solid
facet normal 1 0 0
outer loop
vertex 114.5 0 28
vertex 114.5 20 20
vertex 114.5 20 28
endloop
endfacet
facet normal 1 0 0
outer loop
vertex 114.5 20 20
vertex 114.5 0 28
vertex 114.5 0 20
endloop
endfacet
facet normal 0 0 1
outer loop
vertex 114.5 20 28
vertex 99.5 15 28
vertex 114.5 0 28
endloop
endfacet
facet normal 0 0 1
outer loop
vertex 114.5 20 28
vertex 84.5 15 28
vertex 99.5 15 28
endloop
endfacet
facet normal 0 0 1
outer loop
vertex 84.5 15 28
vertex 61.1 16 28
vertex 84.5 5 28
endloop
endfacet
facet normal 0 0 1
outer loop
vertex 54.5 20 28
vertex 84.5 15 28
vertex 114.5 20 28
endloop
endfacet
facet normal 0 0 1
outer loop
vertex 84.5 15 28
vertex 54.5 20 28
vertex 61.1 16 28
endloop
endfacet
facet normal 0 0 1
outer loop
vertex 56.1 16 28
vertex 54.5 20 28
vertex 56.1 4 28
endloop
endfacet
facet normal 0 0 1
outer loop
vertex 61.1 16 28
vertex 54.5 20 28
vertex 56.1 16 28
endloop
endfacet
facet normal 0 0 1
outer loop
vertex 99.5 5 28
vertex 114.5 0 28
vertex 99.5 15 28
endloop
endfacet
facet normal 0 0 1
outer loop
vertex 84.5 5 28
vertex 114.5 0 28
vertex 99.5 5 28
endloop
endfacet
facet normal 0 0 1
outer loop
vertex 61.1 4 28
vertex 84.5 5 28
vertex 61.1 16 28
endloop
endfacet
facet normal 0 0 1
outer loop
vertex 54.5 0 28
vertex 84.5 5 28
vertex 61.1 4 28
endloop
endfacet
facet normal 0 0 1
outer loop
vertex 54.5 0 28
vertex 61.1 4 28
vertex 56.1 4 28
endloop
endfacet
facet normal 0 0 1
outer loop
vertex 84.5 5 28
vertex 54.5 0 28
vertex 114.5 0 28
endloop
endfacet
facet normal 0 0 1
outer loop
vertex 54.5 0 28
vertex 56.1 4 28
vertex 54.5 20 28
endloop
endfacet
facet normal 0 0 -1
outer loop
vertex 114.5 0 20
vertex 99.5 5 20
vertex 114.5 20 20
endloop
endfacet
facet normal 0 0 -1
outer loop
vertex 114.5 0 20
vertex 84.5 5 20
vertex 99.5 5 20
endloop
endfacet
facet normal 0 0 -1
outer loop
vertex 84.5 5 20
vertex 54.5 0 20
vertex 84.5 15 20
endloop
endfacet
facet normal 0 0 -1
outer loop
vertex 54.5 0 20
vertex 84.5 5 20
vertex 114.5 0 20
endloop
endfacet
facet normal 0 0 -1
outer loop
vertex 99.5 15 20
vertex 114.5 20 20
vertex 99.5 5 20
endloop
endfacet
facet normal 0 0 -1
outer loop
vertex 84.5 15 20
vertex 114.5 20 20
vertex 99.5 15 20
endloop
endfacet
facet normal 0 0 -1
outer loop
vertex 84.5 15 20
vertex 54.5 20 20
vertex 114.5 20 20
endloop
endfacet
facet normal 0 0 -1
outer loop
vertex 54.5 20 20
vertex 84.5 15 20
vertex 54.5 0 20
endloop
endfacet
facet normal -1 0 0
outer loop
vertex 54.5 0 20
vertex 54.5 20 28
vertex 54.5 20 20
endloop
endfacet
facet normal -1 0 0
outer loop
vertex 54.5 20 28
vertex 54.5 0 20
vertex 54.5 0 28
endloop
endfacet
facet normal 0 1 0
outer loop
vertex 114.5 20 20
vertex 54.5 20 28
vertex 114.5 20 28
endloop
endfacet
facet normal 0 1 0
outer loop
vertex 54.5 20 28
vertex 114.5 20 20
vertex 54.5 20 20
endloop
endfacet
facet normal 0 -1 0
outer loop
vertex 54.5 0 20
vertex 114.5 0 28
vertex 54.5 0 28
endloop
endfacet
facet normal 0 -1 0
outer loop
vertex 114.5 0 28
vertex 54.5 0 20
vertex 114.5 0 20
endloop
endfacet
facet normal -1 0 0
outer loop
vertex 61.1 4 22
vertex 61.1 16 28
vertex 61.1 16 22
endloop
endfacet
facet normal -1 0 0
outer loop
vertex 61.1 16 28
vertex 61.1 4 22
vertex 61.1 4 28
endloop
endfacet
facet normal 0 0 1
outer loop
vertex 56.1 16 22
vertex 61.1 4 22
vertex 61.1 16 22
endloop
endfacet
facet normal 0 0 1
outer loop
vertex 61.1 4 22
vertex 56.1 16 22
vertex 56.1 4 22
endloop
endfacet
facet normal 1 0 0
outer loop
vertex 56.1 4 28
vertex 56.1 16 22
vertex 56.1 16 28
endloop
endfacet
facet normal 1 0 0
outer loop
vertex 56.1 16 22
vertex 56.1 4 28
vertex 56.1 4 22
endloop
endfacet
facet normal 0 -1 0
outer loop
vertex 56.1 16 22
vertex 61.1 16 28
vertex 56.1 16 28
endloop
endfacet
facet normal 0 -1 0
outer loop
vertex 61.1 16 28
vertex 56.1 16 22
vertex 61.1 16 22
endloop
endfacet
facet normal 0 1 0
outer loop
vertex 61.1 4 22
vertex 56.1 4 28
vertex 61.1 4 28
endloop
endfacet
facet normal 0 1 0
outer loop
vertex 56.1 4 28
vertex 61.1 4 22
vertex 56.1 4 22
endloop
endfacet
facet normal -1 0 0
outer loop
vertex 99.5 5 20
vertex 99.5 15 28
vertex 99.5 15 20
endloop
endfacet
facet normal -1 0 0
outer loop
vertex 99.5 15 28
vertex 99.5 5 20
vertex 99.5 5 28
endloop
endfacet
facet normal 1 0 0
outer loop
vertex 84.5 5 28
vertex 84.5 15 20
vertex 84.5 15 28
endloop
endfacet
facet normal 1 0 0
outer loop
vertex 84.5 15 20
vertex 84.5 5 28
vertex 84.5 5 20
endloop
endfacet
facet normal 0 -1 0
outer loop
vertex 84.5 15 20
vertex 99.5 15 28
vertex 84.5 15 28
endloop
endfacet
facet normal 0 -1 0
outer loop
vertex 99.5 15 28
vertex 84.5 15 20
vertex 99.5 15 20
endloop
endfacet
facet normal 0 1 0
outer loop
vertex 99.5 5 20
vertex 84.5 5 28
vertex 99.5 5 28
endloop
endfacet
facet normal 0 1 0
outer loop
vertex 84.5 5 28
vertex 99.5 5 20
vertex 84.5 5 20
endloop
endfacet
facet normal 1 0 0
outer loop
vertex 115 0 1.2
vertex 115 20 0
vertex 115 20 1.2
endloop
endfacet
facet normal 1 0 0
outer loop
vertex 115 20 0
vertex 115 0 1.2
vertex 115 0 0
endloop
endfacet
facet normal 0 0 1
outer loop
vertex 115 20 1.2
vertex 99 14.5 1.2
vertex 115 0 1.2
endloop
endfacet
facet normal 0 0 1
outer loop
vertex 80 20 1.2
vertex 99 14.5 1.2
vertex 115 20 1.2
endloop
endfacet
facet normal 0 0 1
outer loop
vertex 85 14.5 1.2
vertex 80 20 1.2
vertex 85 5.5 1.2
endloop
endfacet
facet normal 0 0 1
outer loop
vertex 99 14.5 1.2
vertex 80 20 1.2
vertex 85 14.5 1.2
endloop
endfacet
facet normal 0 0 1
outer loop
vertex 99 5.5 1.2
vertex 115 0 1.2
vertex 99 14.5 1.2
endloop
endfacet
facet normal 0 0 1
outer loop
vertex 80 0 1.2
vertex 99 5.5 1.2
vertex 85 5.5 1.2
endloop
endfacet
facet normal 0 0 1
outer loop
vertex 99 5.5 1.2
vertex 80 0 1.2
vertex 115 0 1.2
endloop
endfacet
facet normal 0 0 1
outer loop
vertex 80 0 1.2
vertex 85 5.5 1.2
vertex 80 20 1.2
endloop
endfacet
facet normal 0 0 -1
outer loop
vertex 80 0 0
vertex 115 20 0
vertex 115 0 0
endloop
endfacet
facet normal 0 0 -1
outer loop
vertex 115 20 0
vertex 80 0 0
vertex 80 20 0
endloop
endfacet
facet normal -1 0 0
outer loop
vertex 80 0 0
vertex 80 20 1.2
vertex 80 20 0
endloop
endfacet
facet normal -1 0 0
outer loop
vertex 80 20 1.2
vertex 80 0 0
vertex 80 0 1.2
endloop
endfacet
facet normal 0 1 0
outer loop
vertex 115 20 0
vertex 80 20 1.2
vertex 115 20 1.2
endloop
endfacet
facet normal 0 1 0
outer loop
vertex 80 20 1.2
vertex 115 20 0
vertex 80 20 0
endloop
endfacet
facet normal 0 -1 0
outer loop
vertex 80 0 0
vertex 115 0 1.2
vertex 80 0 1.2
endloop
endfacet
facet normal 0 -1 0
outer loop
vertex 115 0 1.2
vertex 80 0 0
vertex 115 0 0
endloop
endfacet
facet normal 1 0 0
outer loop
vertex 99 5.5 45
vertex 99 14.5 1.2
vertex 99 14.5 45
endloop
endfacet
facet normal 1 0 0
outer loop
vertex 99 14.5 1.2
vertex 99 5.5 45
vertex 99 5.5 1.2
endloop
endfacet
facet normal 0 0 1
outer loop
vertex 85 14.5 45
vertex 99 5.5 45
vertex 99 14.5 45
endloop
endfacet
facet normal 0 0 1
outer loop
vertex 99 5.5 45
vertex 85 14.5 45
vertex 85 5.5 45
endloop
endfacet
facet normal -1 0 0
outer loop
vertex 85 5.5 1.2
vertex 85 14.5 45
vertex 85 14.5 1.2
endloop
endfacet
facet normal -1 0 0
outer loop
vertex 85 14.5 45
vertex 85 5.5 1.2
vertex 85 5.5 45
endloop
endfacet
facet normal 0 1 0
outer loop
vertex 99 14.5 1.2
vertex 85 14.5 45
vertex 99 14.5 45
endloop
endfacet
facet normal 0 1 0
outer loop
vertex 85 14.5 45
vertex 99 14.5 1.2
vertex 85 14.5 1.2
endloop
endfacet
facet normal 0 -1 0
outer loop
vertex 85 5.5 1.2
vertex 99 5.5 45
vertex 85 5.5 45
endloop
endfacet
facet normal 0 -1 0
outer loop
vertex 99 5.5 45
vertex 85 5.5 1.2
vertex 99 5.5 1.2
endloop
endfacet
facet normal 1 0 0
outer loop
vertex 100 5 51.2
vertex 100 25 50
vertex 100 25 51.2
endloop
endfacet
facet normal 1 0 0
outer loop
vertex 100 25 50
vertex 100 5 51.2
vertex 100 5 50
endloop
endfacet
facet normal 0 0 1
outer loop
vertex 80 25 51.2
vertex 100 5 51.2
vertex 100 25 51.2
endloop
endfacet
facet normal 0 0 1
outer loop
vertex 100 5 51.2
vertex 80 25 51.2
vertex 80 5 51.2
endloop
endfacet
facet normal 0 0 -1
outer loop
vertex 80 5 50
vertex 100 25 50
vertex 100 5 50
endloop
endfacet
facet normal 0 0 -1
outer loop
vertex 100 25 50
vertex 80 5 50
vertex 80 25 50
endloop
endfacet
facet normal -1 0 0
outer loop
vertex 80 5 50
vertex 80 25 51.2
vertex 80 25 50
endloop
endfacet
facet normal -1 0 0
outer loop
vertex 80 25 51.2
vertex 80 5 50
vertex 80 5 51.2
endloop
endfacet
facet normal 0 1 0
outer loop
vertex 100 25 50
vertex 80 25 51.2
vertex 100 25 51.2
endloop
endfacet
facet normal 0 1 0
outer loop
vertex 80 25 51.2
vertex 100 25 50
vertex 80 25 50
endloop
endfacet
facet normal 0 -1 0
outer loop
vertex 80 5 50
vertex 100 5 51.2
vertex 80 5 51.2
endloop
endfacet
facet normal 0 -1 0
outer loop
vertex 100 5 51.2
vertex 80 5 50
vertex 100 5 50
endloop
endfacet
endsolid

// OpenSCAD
$fn=190;


module inlay() {
    difference() {
        cube([60, 20, 8]);
        translate([1.6, 4, 2]) {
            cube([5, 12, 10]);
        }
        translate([30, 5, -1]) {
            cube([15, 10, 20]);
        }
    }
}

module holder() {
    
    cube([35, 20, 1.2]);
    translate([5, 5.5, 0]) {
        cube([15-1, 10-1, 45]);
    }
}

module lid() {
    cube([20, 20, 1.2]);
}

translate([54.5, 0, 20]) {
    inlay();
}

translate([80, 0, 0]) {
    holder();
}

translate([80, 5, 50]) {
    lid();
}
